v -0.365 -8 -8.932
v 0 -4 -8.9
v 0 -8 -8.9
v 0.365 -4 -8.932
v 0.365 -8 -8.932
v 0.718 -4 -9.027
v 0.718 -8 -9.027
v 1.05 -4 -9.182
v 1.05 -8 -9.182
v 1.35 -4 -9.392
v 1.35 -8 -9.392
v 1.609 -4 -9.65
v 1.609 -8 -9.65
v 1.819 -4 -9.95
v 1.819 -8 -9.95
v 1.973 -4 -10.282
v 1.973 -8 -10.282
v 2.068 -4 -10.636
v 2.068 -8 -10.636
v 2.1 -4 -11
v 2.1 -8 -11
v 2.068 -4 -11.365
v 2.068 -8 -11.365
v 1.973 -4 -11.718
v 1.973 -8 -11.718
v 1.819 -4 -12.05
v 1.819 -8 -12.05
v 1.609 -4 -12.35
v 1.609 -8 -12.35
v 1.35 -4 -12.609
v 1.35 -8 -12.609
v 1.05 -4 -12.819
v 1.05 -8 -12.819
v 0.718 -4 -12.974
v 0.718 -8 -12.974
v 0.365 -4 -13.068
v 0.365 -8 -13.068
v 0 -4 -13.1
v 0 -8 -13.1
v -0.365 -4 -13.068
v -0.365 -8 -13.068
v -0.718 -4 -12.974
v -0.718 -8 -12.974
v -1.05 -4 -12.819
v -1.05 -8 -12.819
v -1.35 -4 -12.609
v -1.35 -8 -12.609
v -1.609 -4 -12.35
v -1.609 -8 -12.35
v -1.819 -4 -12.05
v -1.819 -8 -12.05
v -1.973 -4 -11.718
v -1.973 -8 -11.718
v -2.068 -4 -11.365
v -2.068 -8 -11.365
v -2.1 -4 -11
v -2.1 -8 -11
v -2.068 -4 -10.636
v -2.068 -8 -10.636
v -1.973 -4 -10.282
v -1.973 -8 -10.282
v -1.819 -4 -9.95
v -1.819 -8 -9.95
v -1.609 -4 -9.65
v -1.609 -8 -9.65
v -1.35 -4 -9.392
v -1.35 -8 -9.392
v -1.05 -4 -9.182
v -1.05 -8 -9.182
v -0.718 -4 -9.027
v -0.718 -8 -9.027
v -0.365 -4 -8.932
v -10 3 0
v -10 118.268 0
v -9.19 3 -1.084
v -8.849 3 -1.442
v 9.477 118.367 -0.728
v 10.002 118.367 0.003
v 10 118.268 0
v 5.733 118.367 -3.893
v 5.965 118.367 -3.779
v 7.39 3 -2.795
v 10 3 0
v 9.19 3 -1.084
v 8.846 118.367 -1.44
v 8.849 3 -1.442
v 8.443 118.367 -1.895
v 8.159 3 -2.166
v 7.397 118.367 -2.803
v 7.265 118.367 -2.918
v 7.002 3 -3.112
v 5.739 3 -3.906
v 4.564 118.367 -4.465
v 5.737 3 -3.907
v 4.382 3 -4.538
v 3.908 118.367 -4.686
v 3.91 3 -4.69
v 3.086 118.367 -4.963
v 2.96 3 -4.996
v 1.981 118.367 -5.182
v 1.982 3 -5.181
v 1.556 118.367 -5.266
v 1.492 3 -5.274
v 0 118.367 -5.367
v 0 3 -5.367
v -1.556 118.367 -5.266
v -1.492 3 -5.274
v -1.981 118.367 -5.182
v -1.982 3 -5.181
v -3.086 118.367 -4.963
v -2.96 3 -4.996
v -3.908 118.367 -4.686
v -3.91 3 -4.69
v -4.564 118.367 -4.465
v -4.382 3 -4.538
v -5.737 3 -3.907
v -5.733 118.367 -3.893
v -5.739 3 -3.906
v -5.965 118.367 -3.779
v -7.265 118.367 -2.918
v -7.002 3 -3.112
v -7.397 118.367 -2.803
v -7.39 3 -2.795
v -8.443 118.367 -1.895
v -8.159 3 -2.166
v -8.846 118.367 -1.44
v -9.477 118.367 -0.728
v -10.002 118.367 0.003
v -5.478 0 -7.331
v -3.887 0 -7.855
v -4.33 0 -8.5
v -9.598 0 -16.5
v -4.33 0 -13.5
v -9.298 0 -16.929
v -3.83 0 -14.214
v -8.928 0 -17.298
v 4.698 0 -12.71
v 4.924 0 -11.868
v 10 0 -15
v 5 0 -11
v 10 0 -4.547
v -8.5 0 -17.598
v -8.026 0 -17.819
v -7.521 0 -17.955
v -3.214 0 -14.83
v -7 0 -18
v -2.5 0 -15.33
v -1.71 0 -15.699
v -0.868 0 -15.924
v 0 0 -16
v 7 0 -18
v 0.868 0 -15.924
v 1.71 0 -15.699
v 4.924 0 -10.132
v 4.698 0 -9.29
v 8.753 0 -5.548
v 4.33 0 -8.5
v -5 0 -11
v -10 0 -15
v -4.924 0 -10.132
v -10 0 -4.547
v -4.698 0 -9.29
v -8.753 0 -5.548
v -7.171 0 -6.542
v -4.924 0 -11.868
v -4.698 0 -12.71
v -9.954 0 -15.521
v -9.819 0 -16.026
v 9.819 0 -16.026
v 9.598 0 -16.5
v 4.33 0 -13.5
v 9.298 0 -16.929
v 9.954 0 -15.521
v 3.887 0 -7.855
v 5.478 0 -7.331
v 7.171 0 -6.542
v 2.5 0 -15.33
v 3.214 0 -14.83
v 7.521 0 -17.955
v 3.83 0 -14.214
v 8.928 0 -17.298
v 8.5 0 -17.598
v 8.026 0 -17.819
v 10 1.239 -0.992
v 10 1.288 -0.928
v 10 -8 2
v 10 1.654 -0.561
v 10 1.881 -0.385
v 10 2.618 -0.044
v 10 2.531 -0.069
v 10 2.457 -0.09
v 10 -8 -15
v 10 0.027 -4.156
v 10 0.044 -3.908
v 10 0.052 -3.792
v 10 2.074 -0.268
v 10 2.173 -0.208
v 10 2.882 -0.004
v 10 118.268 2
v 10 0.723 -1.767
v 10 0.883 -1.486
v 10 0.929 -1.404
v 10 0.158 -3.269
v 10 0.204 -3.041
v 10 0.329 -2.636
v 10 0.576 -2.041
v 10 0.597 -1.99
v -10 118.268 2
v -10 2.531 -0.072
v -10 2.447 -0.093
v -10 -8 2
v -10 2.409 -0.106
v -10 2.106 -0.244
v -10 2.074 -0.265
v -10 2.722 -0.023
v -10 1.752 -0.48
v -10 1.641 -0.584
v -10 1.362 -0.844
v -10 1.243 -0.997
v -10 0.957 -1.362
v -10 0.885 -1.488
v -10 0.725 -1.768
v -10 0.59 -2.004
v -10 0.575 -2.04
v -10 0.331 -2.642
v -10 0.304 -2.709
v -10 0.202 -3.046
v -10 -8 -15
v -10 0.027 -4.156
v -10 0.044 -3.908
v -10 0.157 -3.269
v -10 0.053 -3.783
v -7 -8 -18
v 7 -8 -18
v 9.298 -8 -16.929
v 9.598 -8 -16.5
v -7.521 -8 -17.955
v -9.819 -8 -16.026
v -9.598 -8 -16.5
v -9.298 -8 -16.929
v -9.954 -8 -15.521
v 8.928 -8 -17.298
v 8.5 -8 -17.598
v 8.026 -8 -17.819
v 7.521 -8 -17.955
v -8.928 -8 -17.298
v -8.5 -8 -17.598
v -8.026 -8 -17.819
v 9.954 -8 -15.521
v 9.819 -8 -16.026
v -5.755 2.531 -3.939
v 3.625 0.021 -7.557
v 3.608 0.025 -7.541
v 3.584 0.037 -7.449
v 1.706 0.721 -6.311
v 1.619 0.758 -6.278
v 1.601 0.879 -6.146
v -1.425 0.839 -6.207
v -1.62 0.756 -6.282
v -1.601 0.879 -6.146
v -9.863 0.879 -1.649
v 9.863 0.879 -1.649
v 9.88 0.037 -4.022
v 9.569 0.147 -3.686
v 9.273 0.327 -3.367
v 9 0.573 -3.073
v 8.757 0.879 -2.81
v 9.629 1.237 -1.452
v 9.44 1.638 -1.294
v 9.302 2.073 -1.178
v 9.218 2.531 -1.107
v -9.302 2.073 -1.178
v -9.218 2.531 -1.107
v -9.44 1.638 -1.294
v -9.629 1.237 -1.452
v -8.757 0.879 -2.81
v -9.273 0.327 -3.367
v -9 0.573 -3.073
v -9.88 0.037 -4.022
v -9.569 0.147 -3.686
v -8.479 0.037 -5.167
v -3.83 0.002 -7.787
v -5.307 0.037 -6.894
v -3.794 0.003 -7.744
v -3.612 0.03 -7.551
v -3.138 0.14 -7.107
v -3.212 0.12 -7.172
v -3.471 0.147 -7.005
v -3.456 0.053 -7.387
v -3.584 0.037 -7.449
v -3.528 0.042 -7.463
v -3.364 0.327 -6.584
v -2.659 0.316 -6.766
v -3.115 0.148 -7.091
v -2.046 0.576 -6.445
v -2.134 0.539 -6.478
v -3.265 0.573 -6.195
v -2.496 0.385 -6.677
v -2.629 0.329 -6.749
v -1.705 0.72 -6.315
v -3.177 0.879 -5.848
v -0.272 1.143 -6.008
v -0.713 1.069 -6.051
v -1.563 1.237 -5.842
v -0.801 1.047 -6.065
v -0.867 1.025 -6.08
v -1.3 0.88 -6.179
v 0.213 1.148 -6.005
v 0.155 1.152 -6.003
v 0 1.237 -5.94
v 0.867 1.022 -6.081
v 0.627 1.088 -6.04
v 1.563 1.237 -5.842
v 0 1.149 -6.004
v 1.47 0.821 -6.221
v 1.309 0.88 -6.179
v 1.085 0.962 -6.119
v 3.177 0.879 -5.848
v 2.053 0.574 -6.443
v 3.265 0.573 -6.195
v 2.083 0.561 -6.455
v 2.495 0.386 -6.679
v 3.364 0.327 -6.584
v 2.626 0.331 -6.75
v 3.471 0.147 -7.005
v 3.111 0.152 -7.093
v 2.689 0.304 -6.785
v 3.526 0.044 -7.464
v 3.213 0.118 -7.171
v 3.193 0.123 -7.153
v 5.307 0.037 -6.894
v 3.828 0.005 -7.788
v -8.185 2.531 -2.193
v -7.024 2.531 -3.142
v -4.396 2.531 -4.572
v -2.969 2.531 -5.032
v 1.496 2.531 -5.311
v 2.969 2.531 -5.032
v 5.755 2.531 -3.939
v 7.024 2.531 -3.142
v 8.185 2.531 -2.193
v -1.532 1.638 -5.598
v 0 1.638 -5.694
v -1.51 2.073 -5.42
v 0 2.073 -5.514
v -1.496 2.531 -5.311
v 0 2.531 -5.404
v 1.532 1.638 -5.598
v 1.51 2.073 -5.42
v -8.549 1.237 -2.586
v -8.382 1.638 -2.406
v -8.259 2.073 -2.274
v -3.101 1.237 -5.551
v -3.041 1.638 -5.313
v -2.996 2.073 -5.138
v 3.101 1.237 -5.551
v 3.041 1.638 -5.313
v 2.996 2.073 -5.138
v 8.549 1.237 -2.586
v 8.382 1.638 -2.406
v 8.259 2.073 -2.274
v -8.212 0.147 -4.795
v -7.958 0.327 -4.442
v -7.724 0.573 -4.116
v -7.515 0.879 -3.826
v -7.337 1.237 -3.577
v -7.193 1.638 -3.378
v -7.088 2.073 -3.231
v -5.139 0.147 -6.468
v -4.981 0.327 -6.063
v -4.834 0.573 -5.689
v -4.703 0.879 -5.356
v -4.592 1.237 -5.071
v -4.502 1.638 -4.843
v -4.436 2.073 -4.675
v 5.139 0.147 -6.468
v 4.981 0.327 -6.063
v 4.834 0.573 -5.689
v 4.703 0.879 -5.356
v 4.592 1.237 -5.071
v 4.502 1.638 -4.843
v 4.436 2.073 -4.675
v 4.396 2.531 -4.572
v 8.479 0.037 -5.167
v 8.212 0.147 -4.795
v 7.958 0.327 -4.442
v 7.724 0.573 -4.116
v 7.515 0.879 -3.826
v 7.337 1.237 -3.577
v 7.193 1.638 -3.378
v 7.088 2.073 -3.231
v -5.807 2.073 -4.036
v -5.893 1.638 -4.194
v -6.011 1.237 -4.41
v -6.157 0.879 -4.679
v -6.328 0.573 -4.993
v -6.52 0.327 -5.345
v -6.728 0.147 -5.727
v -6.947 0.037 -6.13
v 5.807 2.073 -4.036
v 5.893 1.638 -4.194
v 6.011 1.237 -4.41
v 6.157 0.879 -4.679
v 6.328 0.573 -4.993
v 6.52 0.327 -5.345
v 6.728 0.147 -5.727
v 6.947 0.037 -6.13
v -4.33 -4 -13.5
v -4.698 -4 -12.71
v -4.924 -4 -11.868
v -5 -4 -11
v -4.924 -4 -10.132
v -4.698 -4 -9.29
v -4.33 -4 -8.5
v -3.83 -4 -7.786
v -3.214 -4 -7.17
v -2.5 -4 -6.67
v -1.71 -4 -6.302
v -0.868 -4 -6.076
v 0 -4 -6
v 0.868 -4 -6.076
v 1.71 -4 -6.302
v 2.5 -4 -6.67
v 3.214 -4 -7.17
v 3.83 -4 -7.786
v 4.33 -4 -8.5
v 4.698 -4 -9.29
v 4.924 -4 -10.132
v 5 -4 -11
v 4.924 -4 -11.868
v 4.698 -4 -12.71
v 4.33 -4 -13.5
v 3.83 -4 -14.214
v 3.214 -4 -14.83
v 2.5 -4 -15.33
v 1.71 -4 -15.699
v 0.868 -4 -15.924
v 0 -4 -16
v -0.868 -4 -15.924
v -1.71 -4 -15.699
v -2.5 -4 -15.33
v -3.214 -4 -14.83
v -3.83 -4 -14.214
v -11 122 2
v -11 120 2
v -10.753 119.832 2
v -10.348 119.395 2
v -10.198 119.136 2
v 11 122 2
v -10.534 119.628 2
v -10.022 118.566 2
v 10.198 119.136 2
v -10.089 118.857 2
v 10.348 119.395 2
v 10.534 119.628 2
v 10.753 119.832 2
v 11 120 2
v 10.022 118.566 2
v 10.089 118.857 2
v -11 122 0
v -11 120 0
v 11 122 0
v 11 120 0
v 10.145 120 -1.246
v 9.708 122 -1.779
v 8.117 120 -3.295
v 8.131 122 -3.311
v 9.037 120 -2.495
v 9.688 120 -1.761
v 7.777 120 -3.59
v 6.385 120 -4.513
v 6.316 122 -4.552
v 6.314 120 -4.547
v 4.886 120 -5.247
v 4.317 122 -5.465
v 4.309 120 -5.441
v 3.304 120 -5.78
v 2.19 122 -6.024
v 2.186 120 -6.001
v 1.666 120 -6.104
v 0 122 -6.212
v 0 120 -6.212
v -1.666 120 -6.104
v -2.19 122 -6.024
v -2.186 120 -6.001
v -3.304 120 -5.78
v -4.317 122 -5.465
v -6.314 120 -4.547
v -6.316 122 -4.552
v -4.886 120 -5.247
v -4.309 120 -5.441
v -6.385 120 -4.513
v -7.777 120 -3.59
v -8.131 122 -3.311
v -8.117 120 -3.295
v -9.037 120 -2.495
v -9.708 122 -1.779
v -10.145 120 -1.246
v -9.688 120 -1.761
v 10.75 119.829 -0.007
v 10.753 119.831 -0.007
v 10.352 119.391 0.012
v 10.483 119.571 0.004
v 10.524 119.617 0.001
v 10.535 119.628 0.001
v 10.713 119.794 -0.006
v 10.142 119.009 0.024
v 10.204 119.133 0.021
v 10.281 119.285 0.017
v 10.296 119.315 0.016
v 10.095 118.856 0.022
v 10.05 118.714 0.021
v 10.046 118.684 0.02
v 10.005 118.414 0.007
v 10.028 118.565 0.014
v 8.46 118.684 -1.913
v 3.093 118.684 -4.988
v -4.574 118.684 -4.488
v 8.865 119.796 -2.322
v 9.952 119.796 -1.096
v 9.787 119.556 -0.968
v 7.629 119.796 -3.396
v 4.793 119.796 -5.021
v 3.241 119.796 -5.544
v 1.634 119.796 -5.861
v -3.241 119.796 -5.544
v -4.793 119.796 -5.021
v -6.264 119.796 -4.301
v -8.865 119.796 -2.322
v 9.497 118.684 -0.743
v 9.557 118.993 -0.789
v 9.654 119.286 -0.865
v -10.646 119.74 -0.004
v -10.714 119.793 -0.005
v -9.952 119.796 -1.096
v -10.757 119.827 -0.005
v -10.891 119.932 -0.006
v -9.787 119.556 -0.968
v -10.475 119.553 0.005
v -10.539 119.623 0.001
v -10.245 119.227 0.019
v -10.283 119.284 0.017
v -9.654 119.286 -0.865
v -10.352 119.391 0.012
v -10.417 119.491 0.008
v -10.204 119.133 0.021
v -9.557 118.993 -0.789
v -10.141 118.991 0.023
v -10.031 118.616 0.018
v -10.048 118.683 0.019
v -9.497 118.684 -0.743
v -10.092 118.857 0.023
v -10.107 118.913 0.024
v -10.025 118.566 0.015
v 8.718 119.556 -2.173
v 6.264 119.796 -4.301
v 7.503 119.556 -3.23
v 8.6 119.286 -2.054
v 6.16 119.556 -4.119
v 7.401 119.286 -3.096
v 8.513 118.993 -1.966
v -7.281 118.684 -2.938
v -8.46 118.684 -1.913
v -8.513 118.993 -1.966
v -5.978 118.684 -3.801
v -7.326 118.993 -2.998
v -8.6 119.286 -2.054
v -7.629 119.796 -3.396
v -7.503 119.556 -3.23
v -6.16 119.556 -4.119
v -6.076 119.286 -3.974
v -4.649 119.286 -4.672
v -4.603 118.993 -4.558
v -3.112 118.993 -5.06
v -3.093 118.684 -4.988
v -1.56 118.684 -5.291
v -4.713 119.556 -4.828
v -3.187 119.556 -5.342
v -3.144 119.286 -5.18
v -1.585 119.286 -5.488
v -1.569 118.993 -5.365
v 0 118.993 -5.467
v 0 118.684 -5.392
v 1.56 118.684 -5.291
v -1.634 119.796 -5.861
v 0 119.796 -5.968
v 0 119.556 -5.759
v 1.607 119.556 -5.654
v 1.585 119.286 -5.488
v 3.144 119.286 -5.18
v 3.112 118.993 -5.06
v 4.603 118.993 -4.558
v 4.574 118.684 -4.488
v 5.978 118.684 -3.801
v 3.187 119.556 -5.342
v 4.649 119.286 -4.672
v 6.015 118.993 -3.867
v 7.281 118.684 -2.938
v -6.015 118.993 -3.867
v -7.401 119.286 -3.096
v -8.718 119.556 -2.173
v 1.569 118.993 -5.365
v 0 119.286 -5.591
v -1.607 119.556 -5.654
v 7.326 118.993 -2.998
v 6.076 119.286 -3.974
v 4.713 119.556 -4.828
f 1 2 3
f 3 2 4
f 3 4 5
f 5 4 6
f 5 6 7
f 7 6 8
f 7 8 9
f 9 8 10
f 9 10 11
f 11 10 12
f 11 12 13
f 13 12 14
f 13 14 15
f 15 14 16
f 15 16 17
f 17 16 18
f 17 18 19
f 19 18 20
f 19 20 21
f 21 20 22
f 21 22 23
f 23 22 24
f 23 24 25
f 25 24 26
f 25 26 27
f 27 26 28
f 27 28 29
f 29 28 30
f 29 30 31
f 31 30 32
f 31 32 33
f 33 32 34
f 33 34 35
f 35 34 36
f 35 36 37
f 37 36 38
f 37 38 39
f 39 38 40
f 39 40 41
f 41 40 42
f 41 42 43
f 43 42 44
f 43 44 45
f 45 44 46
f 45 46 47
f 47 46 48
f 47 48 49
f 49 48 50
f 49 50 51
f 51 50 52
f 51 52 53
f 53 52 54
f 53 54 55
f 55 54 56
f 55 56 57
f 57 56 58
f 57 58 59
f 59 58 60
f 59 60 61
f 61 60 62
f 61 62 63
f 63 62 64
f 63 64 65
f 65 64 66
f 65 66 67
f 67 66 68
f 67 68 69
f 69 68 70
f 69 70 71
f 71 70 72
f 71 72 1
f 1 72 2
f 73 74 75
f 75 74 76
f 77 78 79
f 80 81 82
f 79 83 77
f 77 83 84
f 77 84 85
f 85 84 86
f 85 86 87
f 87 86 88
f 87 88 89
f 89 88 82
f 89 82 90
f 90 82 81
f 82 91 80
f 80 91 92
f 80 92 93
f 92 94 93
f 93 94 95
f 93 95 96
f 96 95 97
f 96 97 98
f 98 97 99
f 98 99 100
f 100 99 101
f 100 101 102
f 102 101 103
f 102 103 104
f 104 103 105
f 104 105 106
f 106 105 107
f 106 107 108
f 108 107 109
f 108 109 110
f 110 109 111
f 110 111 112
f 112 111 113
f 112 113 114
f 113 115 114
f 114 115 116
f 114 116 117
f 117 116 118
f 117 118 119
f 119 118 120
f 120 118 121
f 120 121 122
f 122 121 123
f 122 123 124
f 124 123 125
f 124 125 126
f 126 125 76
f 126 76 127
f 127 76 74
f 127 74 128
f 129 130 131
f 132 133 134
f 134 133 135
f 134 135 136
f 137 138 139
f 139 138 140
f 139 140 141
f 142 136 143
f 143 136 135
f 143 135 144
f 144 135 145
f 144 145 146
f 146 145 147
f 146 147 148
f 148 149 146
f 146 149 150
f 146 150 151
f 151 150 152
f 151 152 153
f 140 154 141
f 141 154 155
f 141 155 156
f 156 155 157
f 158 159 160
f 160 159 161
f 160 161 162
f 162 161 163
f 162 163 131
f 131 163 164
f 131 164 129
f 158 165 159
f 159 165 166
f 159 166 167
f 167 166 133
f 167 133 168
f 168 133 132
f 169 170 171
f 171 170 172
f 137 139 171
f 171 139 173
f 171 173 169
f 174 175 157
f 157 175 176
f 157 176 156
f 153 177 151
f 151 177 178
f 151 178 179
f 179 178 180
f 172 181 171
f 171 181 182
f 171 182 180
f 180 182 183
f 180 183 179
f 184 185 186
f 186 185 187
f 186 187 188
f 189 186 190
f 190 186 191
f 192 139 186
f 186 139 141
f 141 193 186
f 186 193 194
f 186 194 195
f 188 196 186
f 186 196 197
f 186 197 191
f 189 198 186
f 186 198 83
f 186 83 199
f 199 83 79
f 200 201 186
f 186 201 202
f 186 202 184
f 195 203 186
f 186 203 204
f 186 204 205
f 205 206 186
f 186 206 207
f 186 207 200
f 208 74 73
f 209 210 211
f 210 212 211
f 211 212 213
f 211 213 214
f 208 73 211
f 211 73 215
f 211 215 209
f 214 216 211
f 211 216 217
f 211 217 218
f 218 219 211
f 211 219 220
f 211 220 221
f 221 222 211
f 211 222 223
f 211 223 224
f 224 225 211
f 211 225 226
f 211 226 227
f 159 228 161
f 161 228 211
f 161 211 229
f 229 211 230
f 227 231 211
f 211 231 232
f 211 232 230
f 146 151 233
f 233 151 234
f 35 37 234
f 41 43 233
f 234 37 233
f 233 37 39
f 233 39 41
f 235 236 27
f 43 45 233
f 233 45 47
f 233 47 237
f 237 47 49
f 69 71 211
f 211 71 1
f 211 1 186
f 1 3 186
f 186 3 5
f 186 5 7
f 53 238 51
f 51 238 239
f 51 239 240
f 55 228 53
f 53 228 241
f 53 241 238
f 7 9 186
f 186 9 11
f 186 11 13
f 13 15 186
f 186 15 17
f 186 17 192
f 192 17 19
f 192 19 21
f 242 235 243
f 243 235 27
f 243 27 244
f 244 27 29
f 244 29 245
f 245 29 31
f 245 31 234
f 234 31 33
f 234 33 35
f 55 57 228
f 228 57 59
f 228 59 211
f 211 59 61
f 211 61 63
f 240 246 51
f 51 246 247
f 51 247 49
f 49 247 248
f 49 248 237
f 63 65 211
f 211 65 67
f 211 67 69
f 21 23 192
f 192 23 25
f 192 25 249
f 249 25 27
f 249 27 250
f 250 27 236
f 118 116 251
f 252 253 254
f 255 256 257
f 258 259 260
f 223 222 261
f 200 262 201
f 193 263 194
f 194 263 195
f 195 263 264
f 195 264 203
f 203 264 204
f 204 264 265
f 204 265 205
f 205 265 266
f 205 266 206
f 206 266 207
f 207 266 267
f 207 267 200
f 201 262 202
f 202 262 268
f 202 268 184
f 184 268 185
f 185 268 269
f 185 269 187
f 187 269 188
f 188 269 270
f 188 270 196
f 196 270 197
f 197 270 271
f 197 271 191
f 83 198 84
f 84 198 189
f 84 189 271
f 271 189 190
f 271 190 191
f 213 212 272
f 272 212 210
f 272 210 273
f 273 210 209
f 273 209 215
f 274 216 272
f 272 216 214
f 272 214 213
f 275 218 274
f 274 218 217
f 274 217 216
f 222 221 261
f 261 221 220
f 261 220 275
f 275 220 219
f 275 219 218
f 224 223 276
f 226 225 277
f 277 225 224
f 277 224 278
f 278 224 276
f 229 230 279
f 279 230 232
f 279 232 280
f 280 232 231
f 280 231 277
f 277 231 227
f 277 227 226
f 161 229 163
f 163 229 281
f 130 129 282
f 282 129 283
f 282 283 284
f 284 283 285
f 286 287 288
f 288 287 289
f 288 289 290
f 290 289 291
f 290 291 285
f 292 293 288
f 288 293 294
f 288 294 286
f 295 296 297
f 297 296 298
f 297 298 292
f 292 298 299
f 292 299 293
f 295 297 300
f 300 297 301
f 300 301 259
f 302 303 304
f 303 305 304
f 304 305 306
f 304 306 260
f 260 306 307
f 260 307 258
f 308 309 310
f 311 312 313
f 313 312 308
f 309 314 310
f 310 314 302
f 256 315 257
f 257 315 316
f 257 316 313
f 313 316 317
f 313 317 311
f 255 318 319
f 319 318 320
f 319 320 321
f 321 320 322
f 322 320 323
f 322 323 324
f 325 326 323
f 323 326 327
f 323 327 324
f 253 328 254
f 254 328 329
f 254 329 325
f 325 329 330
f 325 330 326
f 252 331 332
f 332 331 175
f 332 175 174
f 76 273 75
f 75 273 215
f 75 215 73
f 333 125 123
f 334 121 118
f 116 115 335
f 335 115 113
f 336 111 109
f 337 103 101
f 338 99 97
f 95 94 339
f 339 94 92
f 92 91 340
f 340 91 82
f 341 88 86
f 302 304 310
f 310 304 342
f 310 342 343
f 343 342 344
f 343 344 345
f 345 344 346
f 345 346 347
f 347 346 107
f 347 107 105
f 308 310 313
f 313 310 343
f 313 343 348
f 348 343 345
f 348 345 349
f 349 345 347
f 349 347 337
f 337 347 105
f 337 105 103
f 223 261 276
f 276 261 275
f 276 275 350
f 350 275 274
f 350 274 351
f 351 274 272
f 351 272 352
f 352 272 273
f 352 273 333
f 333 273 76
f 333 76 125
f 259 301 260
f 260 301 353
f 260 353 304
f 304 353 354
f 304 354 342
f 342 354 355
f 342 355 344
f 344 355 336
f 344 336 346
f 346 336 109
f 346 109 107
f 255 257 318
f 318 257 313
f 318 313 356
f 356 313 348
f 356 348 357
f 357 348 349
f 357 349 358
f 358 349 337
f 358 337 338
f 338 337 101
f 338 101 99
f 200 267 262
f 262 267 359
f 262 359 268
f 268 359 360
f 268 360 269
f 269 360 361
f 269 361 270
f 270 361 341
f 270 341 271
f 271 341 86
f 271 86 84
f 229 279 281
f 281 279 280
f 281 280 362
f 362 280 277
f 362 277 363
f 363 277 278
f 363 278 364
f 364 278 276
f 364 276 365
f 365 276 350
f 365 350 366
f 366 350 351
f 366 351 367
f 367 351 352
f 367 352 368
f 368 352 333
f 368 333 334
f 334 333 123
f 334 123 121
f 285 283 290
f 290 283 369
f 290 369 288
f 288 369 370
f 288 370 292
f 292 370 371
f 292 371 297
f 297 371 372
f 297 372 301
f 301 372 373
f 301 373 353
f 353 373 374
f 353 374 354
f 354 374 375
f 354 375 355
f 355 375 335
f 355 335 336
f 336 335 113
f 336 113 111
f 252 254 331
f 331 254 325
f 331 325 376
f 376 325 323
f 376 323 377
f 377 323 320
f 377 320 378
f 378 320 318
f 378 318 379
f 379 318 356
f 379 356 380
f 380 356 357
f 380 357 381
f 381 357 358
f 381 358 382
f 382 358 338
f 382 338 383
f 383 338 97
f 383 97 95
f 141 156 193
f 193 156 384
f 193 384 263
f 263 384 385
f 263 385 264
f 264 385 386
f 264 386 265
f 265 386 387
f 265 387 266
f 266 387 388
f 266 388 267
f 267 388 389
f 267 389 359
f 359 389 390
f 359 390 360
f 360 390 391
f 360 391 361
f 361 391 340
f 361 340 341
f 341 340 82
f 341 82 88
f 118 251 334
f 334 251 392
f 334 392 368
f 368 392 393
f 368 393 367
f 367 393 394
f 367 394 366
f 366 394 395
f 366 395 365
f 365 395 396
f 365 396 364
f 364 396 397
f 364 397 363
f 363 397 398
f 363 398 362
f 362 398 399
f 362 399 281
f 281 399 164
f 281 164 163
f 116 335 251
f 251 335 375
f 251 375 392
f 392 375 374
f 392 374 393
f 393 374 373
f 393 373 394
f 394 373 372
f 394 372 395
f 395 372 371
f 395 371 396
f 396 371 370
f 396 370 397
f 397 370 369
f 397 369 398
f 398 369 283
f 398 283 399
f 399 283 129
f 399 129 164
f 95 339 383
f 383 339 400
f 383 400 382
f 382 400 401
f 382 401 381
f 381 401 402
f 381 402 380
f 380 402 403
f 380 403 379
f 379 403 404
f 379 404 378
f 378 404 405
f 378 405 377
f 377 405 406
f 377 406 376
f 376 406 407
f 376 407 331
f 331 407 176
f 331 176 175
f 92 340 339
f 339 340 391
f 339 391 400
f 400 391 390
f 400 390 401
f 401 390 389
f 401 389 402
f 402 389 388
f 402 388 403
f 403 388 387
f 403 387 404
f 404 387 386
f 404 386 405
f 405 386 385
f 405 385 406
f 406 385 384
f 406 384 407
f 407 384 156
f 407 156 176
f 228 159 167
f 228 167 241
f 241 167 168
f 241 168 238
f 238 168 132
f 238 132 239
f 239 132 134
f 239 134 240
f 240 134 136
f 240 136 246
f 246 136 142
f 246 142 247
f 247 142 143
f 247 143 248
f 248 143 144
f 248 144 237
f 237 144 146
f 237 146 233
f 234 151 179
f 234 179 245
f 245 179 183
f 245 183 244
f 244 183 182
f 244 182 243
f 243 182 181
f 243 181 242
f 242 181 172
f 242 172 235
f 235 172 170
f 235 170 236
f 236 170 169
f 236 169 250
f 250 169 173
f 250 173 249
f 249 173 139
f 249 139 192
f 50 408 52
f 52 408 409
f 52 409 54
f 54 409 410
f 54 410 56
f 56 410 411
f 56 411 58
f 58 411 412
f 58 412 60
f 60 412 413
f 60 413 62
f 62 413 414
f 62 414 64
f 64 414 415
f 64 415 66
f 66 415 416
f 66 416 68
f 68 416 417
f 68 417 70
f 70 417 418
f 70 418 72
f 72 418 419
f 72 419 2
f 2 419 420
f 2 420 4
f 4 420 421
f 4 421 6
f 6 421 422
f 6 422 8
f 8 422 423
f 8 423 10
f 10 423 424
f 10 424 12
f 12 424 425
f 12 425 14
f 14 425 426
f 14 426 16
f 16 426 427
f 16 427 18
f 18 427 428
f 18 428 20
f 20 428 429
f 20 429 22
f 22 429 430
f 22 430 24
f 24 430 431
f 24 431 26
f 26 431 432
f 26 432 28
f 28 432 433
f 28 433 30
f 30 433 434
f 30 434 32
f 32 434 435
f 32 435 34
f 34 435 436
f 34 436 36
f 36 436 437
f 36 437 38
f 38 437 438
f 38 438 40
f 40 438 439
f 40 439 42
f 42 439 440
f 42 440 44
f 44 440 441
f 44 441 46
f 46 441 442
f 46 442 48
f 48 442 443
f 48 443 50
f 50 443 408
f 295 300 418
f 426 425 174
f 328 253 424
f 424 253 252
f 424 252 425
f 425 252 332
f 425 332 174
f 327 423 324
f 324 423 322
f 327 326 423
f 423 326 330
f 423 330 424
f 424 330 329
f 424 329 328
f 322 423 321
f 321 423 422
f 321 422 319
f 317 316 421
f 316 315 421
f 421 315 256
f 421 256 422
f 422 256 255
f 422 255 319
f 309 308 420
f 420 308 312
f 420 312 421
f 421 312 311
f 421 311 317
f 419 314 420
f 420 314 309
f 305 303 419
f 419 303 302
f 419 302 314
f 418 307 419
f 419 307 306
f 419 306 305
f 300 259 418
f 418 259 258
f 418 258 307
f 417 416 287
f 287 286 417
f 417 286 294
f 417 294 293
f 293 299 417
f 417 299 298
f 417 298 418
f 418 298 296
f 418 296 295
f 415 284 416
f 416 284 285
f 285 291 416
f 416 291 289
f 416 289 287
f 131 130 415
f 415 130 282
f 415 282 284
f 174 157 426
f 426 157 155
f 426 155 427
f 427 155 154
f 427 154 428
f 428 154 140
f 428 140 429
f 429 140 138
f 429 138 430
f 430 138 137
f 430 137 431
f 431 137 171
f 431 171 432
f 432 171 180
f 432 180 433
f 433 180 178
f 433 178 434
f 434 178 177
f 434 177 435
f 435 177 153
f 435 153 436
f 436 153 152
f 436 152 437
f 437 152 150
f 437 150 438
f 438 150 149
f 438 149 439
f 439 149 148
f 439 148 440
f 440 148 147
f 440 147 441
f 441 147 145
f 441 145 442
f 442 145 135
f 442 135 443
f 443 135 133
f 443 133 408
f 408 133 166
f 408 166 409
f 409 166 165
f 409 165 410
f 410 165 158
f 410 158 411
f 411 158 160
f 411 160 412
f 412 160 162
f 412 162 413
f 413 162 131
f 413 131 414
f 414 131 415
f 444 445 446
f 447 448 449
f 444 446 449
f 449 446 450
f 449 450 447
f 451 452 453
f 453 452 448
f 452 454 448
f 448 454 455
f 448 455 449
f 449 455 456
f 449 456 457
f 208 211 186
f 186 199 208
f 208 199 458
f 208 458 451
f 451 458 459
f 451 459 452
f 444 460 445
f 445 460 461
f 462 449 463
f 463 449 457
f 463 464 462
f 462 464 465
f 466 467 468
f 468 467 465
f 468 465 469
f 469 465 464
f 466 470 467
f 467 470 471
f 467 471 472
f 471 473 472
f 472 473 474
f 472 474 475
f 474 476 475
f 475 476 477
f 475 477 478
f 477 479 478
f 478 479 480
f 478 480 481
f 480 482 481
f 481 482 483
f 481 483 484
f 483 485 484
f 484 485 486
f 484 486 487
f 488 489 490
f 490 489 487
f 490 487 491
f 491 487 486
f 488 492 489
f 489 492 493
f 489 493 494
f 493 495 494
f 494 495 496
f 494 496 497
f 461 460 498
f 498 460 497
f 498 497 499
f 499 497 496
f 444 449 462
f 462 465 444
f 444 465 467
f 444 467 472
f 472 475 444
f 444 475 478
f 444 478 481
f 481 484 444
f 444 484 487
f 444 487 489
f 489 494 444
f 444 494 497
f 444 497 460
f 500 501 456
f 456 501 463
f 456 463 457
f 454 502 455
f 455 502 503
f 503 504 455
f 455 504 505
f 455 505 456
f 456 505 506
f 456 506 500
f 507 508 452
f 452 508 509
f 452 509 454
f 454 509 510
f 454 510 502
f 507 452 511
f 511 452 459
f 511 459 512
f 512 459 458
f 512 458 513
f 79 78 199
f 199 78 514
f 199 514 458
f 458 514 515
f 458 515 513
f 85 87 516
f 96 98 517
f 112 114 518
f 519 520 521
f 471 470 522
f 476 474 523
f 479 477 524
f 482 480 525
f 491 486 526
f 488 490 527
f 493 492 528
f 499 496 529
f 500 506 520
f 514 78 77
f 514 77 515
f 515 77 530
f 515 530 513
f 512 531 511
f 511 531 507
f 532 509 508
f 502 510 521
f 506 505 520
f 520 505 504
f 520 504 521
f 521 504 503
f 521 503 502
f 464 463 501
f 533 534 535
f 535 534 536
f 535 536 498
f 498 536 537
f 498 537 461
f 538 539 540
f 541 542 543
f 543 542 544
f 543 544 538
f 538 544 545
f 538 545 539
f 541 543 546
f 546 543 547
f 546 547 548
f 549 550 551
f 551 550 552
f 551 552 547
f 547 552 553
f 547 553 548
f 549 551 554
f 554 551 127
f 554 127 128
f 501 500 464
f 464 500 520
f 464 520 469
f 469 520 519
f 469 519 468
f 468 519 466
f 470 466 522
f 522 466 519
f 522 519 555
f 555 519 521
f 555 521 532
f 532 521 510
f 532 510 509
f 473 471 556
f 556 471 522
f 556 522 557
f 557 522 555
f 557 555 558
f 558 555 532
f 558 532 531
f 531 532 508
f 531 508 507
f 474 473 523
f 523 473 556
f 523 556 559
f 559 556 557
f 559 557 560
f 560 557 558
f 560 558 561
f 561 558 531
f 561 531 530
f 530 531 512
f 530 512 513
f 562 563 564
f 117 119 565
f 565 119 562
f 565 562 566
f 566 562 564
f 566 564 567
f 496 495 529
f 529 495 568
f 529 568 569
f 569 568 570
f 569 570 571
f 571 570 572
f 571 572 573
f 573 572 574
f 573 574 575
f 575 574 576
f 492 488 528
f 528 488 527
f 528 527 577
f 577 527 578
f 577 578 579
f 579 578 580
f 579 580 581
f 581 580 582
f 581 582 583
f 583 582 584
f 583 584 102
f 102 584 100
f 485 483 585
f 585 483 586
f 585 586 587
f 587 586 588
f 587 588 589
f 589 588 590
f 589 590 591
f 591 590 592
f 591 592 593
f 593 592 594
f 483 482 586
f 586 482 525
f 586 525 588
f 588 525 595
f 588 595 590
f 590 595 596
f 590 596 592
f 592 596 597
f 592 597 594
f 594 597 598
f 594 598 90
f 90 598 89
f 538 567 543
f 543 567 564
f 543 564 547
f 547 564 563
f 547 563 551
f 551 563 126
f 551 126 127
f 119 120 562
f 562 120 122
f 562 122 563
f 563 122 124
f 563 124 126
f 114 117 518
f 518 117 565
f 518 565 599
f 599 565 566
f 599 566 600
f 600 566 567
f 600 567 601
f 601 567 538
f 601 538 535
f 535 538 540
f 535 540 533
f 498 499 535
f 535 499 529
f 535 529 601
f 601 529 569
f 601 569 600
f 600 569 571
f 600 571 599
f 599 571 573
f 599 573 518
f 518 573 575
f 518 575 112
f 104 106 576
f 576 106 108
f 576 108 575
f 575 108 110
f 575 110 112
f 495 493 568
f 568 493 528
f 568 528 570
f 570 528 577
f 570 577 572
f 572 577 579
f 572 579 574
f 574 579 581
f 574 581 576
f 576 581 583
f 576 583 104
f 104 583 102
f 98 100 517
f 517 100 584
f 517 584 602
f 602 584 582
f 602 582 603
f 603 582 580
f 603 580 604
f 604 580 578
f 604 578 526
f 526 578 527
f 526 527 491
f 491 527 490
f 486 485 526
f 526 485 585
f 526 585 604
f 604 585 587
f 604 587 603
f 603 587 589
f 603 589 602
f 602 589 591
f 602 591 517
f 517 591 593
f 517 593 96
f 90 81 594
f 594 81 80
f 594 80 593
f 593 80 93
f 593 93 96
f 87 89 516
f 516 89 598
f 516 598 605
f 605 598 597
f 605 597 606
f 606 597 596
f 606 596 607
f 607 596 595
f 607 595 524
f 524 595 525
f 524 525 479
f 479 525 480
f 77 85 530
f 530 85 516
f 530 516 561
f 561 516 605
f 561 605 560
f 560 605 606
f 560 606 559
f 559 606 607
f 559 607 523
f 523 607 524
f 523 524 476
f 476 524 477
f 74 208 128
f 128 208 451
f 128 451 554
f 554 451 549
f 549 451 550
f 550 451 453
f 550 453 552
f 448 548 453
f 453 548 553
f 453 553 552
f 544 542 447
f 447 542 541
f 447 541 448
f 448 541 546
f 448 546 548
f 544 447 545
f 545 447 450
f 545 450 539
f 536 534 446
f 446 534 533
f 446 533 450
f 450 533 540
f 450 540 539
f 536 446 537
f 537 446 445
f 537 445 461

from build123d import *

# Parameters (mm, degrees)
BOSS_EXTRU_1_DEPTH           = 120
ESQUISSE3_W                  = 20
ESQUISSE3_H                  = 18
BOSS_EXTRU_2_DEPTH           = 8
CONG_1_R                     = 3
CONG_2_R                     = 3
ENL_V_MAT_EXTRU_1_DEPTH      = 122.75385005
ENL_V_MAT_EXTRU_1_DEPTH_BACK = 122.75385005
ESQUISSE4_R                  = 2.1
ENL_V_MAT_EXTRU_2_DEPTH      = 122.75385005
ENL_V_MAT_EXTRU_2_DEPTH_BACK = 4
ESQUISSE5_R                  = 5
ESQUISSE7_W                  = 20
ESQUISSE7_H                  = 128
BOSS_EXTRU_3_DEPTH           = 2
BOSS_EXTRU_4_DEPTH           = 2
CONG_3_R                     = 2


with BuildPart() as part:
    # Esquisse2 → Boss.-Extru.1 (new body)
    with BuildSketch(Plane(origin=(0, 0, 0), x_dir=(1, 0, 0), z_dir=(0, 1, 0))):
        with BuildLine():
            Line((-10, 0), (10, 0))
            ThreePointArc((10, 0), (0, 5.366750419), (-10, 0))
        make_face()
    extrude(amount=BOSS_EXTRU_1_DEPTH)

    # Esquisse3 → Boss.-Extru.2 (add)
    with BuildSketch(Plane.XZ):
        with Locations((0, -9)):
            Rectangle(ESQUISSE3_W, ESQUISSE3_H)
    extrude(amount=BOSS_EXTRU_2_DEPTH)

    # Congé1
    cong_1_edges = [part.edges().sort_by_distance(p)[0] for p in [
        (0, 0, -5.366750419),
    ]]
    fillet(cong_1_edges, radius=CONG_1_R)

    # Congé2
    cong_2_edges = [part.edges().sort_by_distance(p)[0] for p in [
        (10, -4, -18),
        (-10, -4, -18),
    ]]
    fillet(cong_2_edges, radius=CONG_2_R)

    # Esquisse4 → Enlèv. mat.-Extru.1 (cut, two sides: drawn at the far end of the back side and taken through both)
    with BuildSketch(Plane(origin=(0, 0, 0), x_dir=(1, 0, 0), z_dir=(0, 1, 0)).offset(-ENL_V_MAT_EXTRU_1_DEPTH_BACK)):
        with Locations(Location((0, 11, 0), (0, 0, 270))):
            Circle(ESQUISSE4_R)
    extrude(amount=ENL_V_MAT_EXTRU_1_DEPTH + ENL_V_MAT_EXTRU_1_DEPTH_BACK, mode=Mode.SUBTRACT)

    # Esquisse5 → Enlèv. mat.-Extru.2 (cut, two sides: drawn at the far end of the back side and taken through both)
    with BuildSketch(Plane(origin=(0, 0, 0), x_dir=(1, 0, 0), z_dir=(0, 1, 0)).offset(-ENL_V_MAT_EXTRU_2_DEPTH_BACK)):
        with Locations(Location((0, 11, 0), (0, 0, 270))):
            Circle(ESQUISSE5_R)
    extrude(amount=ENL_V_MAT_EXTRU_2_DEPTH + ENL_V_MAT_EXTRU_2_DEPTH_BACK, mode=Mode.SUBTRACT)

    # Esquisse7 → Boss.-Extru.3 (add)
    with BuildSketch(Plane.XY):
        with Locations((0, 56)):
            Rectangle(ESQUISSE7_W, ESQUISSE7_H)
    extrude(amount=BOSS_EXTRU_3_DEPTH)

    # Esquisse8 → Boss.-Extru.4 (add)
    with BuildSketch(Plane(origin=(0, 120, 0), x_dir=(1, 0, 0), z_dir=(0, 1, 0))):
        with BuildLine():
            Line((-11, -2), (11, -2))
            Line((11, -2), (11, 0))
            ThreePointArc((11, 0), (0, 6.211982998), (-11, 0))
            Line((-11, 0), (-11, -2))
        make_face()
    extrude(amount=BOSS_EXTRU_4_DEPTH)

    # Congé3
    # the kernel refuses this fillet: 2 mm, written as the material it adds along each edge
    with BuildSketch(Plane(origin=(-10, 120, -4.330127019), x_dir=(-1, 0, 0), z_dir=(0, 0, 1))) as cong_3_piece_1_section:
        with BuildLine():
            CenterArc((2, 1.732050808), CONG_3_R, 180, 60)
            Line((0, 1.732050808), (-0.04, 1.732050808))
            Line((-0.04, 1.732050808), (-0.04, 0))
            Line((-0.04, 0), (0, -0.04))
            ThreePointArc((0, -0.04), (0.5, -0.04), (0.98, -0.034641016))
            Line((0.98, -0.034641016), (1, 0))
        make_face()
    cong_3_piece_1 = extrude(amount=6.330127019, mode=Mode.PRIVATE)
    cong_3_piece_1 = cong_3_piece_1 & Plane(origin=(0, 119.508015578, 6.633249581), x_dir=(0.8333333333333334, 0, -0.5527707983925666), z_dir=(0, -1, 0)) * Cylinder(12, 20, mode=Mode.PRIVATE)
    add(cong_3_piece_1)
    with BuildSketch(Plane(origin=(0, 120, 6.633249581), x_dir=(0.9700709600485506, 0, -0.24282160626781793), z_dir=(0.24282160626781793, 0, 0.9700709600485506))) as cong_3_piece_2_section:
        with BuildLine():
            CenterArc((14, -1.632945866), CONG_3_R, 125.266736396, 54.733263604)
            Line((12, -1.632945866), (11.96, -1.632945866))
            Line((11.96, -1.632945866), (11.96, 0))
            Line((11.96, 0), (12, 0.04))
            ThreePointArc((12, 0.04), (12.422616289, 0.04), (12.82213723, 0.032658917))
            Line((12.82213723, 0.032658917), (12.845232579, 0))
        make_face()
    cong_3_piece_2 = revolve(axis=Axis((0, 120, 6.633249581), (0, 1, 0)), revolution_arc=151.893732209, mode=Mode.PRIVATE)
    cong_3_piece_2 = split(cong_3_piece_2, bisect_by=Plane(origin=(-10, 119.296936372, -5.570265765), z_dir=(1, 0, 0)), keep=Keep.TOP, mode=Mode.PRIVATE)
    cong_3_piece_2 = split(cong_3_piece_2, bisect_by=Plane(origin=(10, 119.296936372, -5.570265765), z_dir=(-1, 0, 0)), keep=Keep.TOP, mode=Mode.PRIVATE)
    add(cong_3_piece_2)
    with BuildSketch(Plane(origin=(10, 120, -4.330127019), x_dir=(1, 0, 0), z_dir=(0, 0, 1))) as cong_3_piece_3_section:
        with BuildLine():
            CenterArc((2, -1.732050808), CONG_3_R, 120, 60)
            Line((0, -1.732050808), (-0.04, -1.732050808))
            Line((-0.04, -1.732050808), (-0.04, 0))
            Line((-0.04, 0), (0, 0.04))
            ThreePointArc((0, 0.04), (0.5, 0.04), (0.98, 0.034641016))
            Line((0.98, 0.034641016), (1, 0))
        make_face()
    cong_3_piece_3 = extrude(amount=6.330127019, mode=Mode.PRIVATE)
    cong_3_piece_3 = cong_3_piece_3 & Plane(origin=(0, 119.508015797, 6.633249581), x_dir=(0.8333333333333334, 0, -0.5527707983925666), z_dir=(0, -1, 0)) * Cylinder(12, 20, mode=Mode.PRIVATE)
    add(cong_3_piece_3)
    with BuildSketch(Plane(origin=(0, 120, 6.633249581), x_dir=(0.9700709600485506, 0, -0.24282160626781793), z_dir=(0.24282160626781793, 0, 0.9700709600485506))) as cong_3_piece_4a_section:
        with BuildLine():
            CenterArc((14, -1.632945866), CONG_3_R, 125.266736396, 54.733263604)
            Line((12, -1.632945866), (11.96, -1.632945866))
            Line((11.96, -1.632945866), (11.96, 0))
            Line((11.96, 0), (12, 0.04))
            ThreePointArc((12, 0.04), (12.422616289, 0.04), (12.82213723, 0.032658917))
            Line((12.82213723, 0.032658917), (12.845232579, 0))
        make_face()
    cong_3_piece_4a = revolve(axis=Axis((0, 120, 6.633249581), (0, 1, 0)), revolution_arc=151.893732209, mode=Mode.PRIVATE)
    cong_3_piece_4a = split(cong_3_piece_4a, bisect_by=Plane(origin=(-11, 119.572175898, 0.48274505), z_dir=(1, 0, 0)), keep=Keep.TOP, mode=Mode.PRIVATE)
    cong_3_piece_4a = split(cong_3_piece_4a, bisect_by=Plane(origin=(-10, 119.572175898, 0.48274505), z_dir=(-1, 0, 0)), keep=Keep.TOP, mode=Mode.PRIVATE)
    with BuildSketch(Plane(origin=(-10, 120, -4.330127019), x_dir=(-1, 0, 0), z_dir=(0, 0, 1))) as cong_3_piece_4b_section:
        with BuildLine():
            CenterArc((2, 1.732050808), CONG_3_R, 180, 60)
            Line((0, 1.732050808), (-0.04, 1.732050808))
            Line((-0.04, 1.732050808), (-0.04, 0))
            Line((-0.04, 0), (0, -0.04))
            ThreePointArc((0, -0.04), (0.5, -0.04), (0.98, -0.034641016))
            Line((0.98, -0.034641016), (1, 0))
        make_face()
    cong_3_piece_4b = extrude(amount=6.330127019, mode=Mode.PRIVATE)
    cong_3_piece_4b = cong_3_piece_4b & Plane(origin=(0, 119.579872147, 6.633249581), x_dir=(0.8563488385776752, 0, -0.5163977794943224), z_dir=(0, -1, 0)) * Cylinder(12.845232579, 20, mode=Mode.PRIVATE)
    cong_3_piece_4b = cong_3_piece_4b - Plane(origin=(0, 119.579872147, 6.633249581), x_dir=(0.8333333333333334, 0, -0.5527707983925666), z_dir=(0, -1, 0)) * Cylinder(12, 20, mode=Mode.PRIVATE)
    cong_3_piece_4 = cong_3_piece_4a & cong_3_piece_4b
    add(cong_3_piece_4)
    with BuildSketch(Plane(origin=(10, 120, -4.330127019), x_dir=(1, 0, 0), z_dir=(0, 0, 1))) as cong_3_piece_5a_section:
        with BuildLine():
            CenterArc((2, -1.732050808), CONG_3_R, 120, 60)
            Line((0, -1.732050808), (-0.04, -1.732050808))
            Line((-0.04, -1.732050808), (-0.04, 0))
            Line((-0.04, 0), (0, 0.04))
            ThreePointArc((0, 0.04), (0.5, 0.04), (0.98, 0.034641016))
            Line((0.98, 0.034641016), (1, 0))
        make_face()
    cong_3_piece_5a = extrude(amount=6.330127019, mode=Mode.PRIVATE)
    cong_3_piece_5a = cong_3_piece_5a & Plane(origin=(0, 119.57987249, 6.633249581), x_dir=(0.8563488385776752, 0, -0.5163977794943224), z_dir=(0, -1, 0)) * Cylinder(12.845232579, 20, mode=Mode.PRIVATE)
    cong_3_piece_5a = cong_3_piece_5a - Plane(origin=(0, 119.57987249, 6.633249581), x_dir=(0.8333333333333334, 0, -0.5527707983925666), z_dir=(0, -1, 0)) * Cylinder(12, 20, mode=Mode.PRIVATE)
    with BuildSketch(Plane(origin=(0, 120, 6.633249581), x_dir=(0.9700709600485506, 0, -0.24282160626781793), z_dir=(0.24282160626781793, 0, 0.9700709600485506))) as cong_3_piece_5b_section:
        with BuildLine():
            CenterArc((14, -1.632945866), CONG_3_R, 125.266736396, 54.733263604)
            Line((12, -1.632945866), (11.96, -1.632945866))
            Line((11.96, -1.632945866), (11.96, 0))
            Line((11.96, 0), (12, 0.04))
            ThreePointArc((12, 0.04), (12.422616289, 0.04), (12.82213723, 0.032658917))
            Line((12.82213723, 0.032658917), (12.845232579, 0))
        make_face()
    cong_3_piece_5b = revolve(axis=Axis((0, 120, 6.633249581), (0, 1, 0)), revolution_arc=151.893732209, mode=Mode.PRIVATE)
    cong_3_piece_5b = split(cong_3_piece_5b, bisect_by=Plane(origin=(11, 119.572175638, 0.482745123), z_dir=(-1, 0, 0)), keep=Keep.TOP, mode=Mode.PRIVATE)
    cong_3_piece_5b = split(cong_3_piece_5b, bisect_by=Plane(origin=(10, 119.572175638, 0.482745123), z_dir=(1, 0, 0)), keep=Keep.TOP, mode=Mode.PRIVATE)
    cong_3_piece_5 = cong_3_piece_5a & cong_3_piece_5b
    add(cong_3_piece_5)


solid = part.part
